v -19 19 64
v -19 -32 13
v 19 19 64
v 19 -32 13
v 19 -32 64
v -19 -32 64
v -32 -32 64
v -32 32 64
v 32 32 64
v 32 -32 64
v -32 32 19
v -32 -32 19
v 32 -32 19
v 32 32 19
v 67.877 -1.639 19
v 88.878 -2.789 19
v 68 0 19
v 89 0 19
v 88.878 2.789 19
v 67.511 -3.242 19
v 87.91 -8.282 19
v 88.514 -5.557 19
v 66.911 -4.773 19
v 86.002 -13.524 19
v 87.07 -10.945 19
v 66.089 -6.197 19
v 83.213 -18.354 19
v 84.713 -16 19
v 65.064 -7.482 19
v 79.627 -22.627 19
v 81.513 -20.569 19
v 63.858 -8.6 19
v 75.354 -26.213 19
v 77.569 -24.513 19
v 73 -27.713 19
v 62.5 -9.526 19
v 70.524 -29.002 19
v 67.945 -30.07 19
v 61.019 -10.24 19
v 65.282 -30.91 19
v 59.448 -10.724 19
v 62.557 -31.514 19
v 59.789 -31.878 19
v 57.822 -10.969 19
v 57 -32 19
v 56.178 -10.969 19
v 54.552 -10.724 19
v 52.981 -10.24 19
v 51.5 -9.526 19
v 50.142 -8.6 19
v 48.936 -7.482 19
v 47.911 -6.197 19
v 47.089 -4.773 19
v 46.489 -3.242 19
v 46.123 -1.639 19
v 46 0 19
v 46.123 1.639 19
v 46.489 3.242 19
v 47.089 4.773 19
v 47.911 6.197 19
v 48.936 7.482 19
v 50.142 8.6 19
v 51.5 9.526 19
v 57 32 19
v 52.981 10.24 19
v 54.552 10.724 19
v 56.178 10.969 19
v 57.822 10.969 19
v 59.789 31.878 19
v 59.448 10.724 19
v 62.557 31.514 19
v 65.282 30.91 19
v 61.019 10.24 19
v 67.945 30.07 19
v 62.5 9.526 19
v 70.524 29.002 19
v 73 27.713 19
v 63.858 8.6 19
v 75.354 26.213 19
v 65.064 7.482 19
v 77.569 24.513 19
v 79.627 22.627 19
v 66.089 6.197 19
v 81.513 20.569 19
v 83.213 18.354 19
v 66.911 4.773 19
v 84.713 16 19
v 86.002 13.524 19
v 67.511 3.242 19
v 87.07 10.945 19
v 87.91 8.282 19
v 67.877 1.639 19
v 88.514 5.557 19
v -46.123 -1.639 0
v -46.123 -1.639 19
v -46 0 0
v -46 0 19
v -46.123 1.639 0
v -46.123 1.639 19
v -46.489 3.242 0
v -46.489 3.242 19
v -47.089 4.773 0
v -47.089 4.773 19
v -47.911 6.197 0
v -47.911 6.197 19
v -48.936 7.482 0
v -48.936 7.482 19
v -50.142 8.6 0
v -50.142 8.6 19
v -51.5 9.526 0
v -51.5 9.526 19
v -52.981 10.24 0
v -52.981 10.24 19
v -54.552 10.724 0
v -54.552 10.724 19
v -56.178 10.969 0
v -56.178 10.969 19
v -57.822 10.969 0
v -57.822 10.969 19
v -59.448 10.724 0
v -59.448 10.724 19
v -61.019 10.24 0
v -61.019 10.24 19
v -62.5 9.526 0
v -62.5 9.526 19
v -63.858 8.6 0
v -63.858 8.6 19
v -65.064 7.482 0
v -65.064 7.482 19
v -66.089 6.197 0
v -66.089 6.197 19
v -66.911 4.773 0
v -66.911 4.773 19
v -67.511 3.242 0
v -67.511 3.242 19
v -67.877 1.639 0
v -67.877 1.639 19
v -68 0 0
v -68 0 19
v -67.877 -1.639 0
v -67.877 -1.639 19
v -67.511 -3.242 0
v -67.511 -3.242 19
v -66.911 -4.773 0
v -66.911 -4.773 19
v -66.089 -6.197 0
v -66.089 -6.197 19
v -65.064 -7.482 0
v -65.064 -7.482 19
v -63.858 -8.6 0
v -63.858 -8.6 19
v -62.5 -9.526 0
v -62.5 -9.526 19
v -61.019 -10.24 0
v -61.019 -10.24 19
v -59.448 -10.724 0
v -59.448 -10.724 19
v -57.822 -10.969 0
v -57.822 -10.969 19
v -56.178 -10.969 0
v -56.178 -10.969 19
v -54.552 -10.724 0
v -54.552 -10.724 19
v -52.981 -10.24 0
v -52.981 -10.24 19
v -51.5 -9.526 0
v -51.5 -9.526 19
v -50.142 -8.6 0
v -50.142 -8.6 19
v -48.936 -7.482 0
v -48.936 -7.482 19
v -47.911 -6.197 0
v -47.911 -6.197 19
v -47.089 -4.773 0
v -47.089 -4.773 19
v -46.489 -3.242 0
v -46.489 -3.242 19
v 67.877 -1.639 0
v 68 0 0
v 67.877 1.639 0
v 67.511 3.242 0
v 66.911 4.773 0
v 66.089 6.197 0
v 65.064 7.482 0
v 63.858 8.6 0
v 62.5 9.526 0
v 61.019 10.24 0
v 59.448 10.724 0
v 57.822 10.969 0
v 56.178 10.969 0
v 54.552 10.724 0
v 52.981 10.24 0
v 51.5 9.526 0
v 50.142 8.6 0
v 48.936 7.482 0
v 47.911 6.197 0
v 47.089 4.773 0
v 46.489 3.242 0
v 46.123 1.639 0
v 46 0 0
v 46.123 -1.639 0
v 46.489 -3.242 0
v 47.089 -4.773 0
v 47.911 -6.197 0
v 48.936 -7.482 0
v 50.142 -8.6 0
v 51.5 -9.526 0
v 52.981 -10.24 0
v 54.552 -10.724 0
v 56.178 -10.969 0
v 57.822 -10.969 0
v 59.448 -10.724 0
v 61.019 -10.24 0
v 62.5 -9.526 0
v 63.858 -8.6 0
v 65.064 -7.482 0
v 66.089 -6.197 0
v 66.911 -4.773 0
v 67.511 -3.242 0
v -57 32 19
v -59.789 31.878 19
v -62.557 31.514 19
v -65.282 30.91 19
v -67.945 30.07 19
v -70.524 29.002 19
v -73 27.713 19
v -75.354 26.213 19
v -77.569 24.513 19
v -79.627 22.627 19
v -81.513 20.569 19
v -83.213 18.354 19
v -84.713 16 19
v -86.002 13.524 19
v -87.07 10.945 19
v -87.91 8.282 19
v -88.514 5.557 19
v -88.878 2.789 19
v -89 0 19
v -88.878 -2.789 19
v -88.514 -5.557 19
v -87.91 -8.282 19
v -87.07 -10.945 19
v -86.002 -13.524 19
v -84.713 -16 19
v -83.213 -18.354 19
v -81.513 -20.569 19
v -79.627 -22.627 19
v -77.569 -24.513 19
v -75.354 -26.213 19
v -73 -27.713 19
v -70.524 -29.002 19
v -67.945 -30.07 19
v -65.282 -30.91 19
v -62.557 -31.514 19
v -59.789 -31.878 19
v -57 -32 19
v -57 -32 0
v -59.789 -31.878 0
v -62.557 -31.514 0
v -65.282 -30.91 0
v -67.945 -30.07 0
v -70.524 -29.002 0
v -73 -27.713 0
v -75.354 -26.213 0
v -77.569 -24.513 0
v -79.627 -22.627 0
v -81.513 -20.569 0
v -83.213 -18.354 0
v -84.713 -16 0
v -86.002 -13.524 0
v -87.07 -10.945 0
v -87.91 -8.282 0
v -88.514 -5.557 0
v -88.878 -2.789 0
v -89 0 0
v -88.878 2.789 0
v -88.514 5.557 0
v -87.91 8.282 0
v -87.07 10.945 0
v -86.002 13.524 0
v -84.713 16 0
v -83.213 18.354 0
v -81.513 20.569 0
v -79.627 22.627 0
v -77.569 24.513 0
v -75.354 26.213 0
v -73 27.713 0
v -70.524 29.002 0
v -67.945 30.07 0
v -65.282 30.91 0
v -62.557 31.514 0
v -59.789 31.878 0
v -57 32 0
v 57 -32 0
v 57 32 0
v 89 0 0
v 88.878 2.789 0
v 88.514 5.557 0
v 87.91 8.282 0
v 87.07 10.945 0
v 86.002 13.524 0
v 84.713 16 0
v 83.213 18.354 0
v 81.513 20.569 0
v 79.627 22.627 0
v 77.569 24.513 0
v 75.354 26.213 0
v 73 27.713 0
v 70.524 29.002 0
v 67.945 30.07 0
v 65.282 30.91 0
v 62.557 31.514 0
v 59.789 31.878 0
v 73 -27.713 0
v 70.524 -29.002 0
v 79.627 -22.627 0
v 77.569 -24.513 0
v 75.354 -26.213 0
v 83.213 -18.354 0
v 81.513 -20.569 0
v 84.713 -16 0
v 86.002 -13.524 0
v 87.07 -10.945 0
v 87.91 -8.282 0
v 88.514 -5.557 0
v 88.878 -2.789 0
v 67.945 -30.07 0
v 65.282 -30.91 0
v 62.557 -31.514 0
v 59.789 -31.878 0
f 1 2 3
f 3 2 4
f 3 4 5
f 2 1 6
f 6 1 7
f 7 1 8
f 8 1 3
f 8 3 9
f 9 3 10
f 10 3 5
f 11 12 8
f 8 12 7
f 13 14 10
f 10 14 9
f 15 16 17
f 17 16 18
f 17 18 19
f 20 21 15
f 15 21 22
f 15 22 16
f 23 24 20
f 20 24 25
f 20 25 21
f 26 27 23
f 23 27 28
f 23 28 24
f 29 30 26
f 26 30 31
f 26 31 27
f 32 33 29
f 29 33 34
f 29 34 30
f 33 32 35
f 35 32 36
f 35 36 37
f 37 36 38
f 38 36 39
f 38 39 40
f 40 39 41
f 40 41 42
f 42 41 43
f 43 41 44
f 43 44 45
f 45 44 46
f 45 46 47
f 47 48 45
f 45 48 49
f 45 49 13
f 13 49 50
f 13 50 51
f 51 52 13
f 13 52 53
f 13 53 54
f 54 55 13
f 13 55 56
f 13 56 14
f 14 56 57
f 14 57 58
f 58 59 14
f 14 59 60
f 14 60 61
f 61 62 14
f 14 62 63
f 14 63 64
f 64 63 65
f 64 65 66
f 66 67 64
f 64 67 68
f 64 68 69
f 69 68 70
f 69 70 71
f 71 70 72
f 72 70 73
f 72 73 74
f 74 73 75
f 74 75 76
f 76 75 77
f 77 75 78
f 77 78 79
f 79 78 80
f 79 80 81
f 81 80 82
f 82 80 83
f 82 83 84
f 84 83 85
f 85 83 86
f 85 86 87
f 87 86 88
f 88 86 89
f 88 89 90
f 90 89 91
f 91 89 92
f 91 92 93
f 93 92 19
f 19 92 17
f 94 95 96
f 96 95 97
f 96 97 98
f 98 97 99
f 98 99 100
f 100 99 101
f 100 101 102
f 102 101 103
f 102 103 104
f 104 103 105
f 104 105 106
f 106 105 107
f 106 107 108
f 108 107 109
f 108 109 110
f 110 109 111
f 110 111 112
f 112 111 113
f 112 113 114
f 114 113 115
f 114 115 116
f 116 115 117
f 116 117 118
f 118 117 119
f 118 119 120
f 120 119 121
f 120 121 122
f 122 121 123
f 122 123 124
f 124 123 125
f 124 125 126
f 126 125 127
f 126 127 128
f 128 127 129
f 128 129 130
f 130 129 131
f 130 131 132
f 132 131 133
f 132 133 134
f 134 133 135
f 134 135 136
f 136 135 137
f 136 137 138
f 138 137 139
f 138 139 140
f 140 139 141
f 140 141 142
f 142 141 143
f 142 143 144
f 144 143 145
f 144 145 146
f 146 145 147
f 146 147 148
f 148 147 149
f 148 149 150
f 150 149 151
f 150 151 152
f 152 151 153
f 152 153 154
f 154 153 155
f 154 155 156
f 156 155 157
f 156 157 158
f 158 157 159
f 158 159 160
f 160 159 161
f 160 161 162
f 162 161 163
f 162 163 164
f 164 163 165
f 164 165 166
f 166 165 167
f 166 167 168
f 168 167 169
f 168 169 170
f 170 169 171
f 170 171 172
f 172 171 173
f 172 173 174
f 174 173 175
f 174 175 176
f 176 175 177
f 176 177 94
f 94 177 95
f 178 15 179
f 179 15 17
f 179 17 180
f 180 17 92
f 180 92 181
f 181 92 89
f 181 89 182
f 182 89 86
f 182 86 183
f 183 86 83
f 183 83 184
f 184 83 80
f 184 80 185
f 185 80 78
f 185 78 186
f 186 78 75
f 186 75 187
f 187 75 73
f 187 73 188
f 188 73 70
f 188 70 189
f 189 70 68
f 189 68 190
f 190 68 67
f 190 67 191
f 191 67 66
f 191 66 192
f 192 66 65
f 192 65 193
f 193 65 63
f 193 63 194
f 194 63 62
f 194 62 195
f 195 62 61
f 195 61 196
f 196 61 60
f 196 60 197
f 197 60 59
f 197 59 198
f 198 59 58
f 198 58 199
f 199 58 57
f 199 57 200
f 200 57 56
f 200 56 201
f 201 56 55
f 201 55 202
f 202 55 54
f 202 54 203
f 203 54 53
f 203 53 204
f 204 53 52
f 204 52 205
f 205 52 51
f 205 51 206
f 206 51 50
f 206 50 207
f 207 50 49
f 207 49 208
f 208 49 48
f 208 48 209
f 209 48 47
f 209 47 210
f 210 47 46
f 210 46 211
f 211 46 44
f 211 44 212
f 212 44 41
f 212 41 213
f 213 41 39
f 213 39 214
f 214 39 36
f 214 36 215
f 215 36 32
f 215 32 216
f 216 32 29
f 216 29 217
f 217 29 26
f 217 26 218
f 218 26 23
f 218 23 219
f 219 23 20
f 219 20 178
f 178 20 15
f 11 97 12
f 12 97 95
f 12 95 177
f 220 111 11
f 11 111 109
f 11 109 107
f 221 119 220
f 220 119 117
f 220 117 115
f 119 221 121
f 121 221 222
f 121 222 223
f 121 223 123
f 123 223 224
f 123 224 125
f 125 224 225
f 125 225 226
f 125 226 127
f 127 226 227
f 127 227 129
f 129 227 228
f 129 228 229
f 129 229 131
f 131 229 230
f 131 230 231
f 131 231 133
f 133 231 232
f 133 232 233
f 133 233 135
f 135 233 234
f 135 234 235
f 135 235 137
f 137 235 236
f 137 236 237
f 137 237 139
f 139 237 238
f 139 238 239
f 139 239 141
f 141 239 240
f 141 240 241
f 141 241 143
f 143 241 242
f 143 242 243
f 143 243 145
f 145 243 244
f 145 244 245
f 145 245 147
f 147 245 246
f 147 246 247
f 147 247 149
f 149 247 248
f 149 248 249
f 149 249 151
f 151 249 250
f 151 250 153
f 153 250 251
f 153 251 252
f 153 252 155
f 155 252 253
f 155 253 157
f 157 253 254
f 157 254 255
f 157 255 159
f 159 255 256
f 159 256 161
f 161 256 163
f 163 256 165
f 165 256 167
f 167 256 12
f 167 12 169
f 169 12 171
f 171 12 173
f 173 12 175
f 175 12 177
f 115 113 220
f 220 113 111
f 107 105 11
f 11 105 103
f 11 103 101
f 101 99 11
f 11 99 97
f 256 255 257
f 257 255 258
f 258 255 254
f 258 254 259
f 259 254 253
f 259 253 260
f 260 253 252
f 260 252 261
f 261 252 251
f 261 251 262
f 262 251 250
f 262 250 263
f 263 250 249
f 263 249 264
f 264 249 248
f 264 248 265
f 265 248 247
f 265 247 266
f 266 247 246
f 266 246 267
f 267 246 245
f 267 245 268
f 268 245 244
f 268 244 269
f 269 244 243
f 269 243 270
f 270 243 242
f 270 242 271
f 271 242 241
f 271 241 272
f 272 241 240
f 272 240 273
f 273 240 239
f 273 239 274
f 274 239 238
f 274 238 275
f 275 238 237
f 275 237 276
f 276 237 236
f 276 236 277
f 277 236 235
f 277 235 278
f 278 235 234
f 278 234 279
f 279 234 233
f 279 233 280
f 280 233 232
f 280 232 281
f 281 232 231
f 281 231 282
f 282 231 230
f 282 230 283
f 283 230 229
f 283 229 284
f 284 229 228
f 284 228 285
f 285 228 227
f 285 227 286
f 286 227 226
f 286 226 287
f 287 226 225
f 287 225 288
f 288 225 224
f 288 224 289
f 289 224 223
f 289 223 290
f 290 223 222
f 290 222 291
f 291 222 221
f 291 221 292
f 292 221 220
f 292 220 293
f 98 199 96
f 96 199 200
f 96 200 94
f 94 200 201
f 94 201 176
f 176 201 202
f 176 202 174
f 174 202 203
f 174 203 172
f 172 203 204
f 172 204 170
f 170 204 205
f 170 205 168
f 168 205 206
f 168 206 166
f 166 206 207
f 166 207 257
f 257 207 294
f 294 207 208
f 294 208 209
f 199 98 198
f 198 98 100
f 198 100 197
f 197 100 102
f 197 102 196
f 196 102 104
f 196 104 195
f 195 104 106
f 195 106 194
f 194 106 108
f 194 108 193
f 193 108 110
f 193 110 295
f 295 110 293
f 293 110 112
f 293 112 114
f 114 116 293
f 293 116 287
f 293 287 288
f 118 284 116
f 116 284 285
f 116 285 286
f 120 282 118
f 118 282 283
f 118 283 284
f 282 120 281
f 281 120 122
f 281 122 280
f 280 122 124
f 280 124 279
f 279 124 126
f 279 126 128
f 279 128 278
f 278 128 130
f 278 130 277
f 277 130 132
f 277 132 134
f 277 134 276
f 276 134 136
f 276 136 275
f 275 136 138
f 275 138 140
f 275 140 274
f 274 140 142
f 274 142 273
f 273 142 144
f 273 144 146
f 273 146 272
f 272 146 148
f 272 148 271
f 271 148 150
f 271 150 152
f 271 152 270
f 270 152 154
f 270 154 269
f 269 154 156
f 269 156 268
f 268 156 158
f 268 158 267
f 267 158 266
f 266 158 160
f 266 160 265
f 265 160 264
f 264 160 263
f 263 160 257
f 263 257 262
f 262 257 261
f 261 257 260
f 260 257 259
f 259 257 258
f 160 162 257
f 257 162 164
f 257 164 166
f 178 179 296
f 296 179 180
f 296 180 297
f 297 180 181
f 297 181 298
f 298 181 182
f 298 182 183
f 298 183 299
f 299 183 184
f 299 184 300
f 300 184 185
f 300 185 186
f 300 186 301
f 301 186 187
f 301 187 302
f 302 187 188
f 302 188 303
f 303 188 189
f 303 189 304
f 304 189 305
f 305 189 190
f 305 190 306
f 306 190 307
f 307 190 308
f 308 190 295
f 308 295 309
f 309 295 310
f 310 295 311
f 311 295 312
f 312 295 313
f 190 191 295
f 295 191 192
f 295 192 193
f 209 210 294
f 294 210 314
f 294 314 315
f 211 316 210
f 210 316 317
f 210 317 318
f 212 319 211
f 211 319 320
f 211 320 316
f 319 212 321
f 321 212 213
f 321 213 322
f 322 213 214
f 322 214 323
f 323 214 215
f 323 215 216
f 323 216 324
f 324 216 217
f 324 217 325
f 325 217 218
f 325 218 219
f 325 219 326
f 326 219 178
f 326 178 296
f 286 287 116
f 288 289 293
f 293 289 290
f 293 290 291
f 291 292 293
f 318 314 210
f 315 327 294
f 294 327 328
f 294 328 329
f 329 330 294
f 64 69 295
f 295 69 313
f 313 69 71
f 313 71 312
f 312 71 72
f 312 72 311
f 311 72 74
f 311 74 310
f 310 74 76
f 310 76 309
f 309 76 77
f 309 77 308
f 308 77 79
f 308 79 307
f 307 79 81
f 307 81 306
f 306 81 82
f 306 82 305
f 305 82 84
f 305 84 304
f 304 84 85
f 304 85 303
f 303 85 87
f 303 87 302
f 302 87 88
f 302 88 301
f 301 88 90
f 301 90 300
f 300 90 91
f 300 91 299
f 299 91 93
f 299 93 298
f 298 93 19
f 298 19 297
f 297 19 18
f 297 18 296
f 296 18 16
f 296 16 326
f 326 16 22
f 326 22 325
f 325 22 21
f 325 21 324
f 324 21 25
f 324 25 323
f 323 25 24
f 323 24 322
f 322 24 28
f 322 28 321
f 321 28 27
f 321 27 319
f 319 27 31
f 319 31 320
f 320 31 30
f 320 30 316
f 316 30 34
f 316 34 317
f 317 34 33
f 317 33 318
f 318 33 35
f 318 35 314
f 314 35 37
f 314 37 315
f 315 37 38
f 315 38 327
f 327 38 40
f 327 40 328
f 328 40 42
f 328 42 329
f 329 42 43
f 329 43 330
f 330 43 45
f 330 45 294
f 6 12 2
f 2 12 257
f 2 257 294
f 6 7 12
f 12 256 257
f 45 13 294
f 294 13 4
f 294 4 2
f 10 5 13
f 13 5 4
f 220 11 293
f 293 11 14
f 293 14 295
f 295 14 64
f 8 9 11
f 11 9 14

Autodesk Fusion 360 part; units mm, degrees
sketch "base" plane through (0, 0, 0) normal (0, 0, 1) x (1, 0, 0)
  line L0 (89, 32) -> (-89, 32)
  line L1 (-89, 32) -> (-89, -32)
  line L2 (-89, -32) -> (89, -32)
  line L3 (89, -32) -> (89, 32)
  line L4 (89, 32) -> (-89, -32) construction
  line L5 (-89, 32) -> (89, -32) construction
  dimension "d1" = 178
  dimension "d2" = 64
extrude "Extrude1" add sketch "base" along normal blind 19
fillet "Fillet1" radius 32 4 edges at (89, -32, 9.5) (89, 32, 9.5) (-89, -32, 9.5) (-89, 32, 9.5)
sketch "circles" plane through (0, 0, 19) normal (0, 0, 1) x (-1, 0, 0)
  arc A0 (57, -32) -> (57, 32) centre (57, 0) ccw
  line L0 (57, 32) -> (-57, 32)
  arc A1 (-57, 32) -> (-57, -32) centre (-57, 0) ccw
  line L1 (-57, -32) -> (57, -32)
  line L2 (57, 32) -> (57, -32) construction
  line L3 (-57, 32) -> (-57, -32) construction
  circle A2 centre (-57, 0) radius 11
  circle A3 centre (57, 0) radius 11
  dimension "d6" = 64
  dimension "d7" = 64
  dimension "d8" = 22
  dimension "d9" = 22
extrude "Extrude2" cut sketch "circles" against normal blind 50 contours A2 | A3
sketch "base square" plane through (0, 0, 19) normal (0, 0, 1) x (-1, 0, 0)
  circle A0 centre (57, 0) radius 11
  circle A1 centre (-57, 0) radius 11
  arc A2 (57, -32) -> (57, 32) centre (57, 0) ccw
  line L0 (57, 32) -> (-57, 32)
  arc A3 (-57, 32) -> (-57, -32) centre (-57, 0) ccw
  line L1 (-57, -32) -> (57, -32)
  line L2 (-32, -32) -> (32, -32)
  line L3 (32, -32) -> (32, 32)
  line L4 (32, 32) -> (-32, 32)
  line L5 (-32, 32) -> (-32, -32)
  line L6 (-32, -32) -> (32, 32) construction
  line L7 (32, -32) -> (-32, 32) construction
  dimension "d12" = 64
  dimension "d13" = 64
extrude "Extrude3" add sketch "base square" along normal blind 45 contours L0 L1 L2 L3 L4 L5
sketch "top rectangle" plane through (0, 0, 64) normal (0, 0, 1) x (-1, 0, 0)
  line L0 (-32, 32) -> (-32, -32)
  line L1 (-32, -32) -> (32, -32)
  line L2 (32, -32) -> (32, 32)
  line L3 (32, 32) -> (-32, 32)
  line L4 (19, 32) -> (-19, 32)
  line L5 (-19, 32) -> (-19, -19)
  line L6 (-19, -19) -> (19, -19)
  line L7 (19, -19) -> (19, 32)
  dimension "d16" = 13
  dimension "d17" = 38
  dimension "d18" = 51
extrude "Extrude4" cut sketch "top rectangle" against normal blind 51 contours L3 L4 L5 L6 L7
sketch "Sketch6" plane through (-19, 0, 0) normal (1, 0, 0) x (0, 1, 0)
  line L0 (19, 64) -> (-32, 64)
  line L1 (-32, 64) -> (-32, 13)
  line L2 (-32, 13) -> (19, 13)
  line L3 (19, 13) -> (19, 64)
  line L4 (-32, 13) -> (19, 13)
  line L5 (19, 13) -> (19, 64)
  line L6 (-32, 13) -> (19, 64)
extrude "Extrude5" add sketch "Sketch6" along normal blind 38 contours L2 L3 L4 L5 L6
equation "d1 = 114 mm + 32 mm + 32 mm"
equation "d14 = 64 mm - 19 mm"
equation "d19 = -64 mm + 19 mm - 6 mm"
